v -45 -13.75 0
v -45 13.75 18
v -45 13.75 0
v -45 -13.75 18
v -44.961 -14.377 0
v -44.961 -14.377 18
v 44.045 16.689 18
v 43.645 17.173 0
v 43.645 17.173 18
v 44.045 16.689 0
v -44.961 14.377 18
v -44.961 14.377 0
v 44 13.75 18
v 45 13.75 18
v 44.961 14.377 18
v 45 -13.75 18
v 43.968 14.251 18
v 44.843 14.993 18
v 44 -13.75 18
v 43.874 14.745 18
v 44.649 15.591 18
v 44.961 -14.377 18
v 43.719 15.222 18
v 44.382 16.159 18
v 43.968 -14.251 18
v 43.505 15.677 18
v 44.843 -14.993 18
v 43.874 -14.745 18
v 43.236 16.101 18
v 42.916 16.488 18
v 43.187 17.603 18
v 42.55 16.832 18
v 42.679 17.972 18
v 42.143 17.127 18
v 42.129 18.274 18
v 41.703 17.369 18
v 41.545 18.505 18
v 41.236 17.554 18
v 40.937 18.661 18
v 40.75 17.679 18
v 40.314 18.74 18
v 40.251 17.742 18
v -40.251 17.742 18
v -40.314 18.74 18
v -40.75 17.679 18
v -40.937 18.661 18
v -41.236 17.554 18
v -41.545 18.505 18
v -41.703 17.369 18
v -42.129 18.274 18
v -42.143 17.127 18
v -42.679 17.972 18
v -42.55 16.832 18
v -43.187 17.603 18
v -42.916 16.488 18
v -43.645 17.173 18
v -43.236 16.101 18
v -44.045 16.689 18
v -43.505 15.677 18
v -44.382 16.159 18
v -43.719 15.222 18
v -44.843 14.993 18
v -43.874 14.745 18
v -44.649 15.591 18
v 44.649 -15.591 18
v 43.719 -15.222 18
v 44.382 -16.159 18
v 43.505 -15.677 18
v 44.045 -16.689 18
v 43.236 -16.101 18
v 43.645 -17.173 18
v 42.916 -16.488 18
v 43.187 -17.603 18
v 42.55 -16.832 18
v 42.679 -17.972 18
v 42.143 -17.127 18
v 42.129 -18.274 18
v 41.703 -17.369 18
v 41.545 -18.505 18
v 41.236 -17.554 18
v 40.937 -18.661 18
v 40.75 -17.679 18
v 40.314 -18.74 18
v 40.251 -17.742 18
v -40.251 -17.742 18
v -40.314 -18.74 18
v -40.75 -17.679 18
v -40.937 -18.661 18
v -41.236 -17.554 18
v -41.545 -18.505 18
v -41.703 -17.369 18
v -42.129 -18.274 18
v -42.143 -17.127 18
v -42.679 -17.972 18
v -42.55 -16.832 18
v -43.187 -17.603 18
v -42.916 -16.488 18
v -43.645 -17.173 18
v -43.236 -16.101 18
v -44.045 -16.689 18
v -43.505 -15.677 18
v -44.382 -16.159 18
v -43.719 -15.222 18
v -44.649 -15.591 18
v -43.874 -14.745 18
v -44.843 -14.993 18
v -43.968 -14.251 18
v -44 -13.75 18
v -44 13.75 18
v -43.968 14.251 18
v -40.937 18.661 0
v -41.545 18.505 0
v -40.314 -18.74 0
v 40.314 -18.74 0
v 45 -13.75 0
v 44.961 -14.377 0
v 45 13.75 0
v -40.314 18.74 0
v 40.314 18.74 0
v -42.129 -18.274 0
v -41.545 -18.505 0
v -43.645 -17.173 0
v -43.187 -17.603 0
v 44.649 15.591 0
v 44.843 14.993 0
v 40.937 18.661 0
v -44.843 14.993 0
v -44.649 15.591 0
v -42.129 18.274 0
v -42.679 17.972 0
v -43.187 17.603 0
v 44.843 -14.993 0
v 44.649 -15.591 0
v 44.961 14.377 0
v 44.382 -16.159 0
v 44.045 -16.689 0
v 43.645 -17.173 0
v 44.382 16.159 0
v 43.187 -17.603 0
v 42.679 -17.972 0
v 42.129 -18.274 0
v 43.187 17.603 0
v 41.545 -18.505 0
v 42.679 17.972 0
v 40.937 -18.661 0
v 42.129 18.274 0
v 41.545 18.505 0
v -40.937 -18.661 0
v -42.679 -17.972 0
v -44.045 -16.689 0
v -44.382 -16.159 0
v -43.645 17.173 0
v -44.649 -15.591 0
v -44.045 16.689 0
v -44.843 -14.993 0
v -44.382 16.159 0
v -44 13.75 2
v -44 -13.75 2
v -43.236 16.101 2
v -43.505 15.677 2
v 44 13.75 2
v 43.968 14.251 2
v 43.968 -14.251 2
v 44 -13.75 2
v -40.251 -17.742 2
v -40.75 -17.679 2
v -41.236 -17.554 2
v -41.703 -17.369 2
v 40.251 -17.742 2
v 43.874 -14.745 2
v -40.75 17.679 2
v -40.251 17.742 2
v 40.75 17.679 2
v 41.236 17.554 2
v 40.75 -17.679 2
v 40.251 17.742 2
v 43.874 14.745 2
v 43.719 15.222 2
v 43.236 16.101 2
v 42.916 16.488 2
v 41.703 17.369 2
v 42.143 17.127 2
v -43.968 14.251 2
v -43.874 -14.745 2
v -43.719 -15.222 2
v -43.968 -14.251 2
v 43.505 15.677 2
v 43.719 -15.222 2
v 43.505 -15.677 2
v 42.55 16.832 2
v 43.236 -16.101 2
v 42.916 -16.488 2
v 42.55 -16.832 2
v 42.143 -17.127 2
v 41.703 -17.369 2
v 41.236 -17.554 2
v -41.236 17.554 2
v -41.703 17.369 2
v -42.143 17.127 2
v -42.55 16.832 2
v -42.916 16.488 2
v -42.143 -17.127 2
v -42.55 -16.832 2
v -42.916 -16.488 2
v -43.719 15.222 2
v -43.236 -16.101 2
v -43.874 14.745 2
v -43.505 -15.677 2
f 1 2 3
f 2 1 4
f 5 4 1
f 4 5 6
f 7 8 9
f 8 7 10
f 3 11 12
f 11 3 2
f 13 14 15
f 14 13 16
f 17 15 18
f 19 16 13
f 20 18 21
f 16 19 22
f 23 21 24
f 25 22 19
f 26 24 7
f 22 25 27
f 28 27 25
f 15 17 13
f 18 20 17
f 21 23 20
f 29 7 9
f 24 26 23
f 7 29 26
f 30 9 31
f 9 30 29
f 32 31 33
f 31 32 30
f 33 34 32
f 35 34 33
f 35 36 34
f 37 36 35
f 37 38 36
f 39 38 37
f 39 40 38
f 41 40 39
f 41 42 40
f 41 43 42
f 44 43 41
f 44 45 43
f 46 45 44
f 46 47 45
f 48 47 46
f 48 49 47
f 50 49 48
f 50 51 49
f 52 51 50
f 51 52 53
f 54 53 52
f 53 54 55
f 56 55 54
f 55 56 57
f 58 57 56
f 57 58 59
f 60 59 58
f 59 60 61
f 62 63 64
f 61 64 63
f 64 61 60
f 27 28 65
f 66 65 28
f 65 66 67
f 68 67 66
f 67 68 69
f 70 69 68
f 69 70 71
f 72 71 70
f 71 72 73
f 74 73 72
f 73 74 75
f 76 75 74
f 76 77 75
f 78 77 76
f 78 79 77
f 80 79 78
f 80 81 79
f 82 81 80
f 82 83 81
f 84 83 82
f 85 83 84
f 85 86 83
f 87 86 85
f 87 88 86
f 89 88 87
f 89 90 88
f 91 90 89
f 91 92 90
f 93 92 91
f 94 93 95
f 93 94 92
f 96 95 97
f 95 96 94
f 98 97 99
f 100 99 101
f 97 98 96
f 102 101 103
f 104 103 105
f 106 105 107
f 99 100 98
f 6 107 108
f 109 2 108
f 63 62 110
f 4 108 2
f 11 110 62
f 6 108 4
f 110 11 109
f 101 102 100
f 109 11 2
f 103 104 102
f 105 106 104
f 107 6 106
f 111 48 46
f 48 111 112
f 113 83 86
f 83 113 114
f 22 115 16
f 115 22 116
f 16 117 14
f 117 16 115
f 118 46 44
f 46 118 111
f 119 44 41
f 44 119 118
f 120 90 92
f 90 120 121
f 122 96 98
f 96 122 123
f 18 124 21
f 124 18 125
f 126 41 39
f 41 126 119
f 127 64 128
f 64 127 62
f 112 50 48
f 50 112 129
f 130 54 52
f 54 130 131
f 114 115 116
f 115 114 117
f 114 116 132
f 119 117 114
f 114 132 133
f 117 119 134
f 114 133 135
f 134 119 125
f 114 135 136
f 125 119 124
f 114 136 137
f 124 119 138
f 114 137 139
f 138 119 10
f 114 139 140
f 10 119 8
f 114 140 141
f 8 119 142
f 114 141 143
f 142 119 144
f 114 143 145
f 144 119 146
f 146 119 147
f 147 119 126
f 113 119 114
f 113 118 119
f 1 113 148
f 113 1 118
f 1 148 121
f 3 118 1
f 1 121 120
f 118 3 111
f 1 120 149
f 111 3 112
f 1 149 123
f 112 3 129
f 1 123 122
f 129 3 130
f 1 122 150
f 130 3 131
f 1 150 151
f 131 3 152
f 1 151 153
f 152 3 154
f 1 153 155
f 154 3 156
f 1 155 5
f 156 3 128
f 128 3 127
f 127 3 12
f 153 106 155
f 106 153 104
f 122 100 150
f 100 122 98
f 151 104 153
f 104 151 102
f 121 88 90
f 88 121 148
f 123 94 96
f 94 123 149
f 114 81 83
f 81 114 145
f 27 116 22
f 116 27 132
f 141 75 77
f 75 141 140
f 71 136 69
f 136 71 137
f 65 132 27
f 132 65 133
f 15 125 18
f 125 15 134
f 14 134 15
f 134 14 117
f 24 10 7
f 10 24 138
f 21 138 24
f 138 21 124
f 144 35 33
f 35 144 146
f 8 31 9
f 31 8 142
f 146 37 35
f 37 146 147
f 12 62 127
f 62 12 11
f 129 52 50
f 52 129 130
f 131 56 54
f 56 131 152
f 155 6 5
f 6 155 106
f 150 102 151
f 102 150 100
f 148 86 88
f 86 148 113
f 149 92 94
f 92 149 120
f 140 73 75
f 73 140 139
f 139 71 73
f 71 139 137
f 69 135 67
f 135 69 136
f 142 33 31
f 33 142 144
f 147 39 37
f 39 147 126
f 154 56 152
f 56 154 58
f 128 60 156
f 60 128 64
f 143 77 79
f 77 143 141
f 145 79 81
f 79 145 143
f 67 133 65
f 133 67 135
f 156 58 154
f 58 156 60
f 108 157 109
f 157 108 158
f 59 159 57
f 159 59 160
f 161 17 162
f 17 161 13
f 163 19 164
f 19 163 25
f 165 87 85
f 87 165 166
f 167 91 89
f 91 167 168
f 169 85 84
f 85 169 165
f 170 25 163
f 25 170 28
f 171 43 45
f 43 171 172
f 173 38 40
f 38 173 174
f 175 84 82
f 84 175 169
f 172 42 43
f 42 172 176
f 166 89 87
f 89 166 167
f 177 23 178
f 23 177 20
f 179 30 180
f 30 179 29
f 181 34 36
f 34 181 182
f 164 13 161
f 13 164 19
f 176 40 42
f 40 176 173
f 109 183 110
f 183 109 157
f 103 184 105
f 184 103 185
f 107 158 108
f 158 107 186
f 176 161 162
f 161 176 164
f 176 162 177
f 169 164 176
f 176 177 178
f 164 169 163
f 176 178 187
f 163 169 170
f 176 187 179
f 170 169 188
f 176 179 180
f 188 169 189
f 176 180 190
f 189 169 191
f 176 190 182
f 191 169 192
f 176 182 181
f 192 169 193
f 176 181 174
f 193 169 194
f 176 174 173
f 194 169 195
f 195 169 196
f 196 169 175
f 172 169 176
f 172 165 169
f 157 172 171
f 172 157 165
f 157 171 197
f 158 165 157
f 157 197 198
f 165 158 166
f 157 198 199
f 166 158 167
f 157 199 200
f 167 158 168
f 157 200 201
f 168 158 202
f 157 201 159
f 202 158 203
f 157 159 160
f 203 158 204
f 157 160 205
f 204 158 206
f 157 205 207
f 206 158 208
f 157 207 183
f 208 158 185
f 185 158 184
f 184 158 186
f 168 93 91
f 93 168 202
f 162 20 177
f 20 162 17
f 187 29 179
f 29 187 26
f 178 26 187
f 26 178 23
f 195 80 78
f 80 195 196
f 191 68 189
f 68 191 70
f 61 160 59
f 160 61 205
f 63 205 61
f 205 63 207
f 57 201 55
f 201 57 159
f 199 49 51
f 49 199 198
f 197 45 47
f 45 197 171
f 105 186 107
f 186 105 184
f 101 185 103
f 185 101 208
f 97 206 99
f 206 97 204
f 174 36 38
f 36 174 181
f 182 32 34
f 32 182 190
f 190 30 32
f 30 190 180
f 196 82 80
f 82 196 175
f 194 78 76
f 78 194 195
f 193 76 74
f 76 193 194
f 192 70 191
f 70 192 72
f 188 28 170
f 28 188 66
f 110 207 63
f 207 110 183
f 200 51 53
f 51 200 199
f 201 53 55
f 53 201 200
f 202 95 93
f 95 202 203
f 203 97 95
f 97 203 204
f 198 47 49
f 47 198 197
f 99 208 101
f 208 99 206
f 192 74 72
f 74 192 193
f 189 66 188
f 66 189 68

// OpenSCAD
$fn = 50;


difference() {
	union() {
		hull() {
			translate(v = [-40.0000000000, 13.7500000000, 0]) {
				cylinder(h = 18, r = 5);
			}
			translate(v = [40.0000000000, 13.7500000000, 0]) {
				cylinder(h = 18, r = 5);
			}
			translate(v = [-40.0000000000, -13.7500000000, 0]) {
				cylinder(h = 18, r = 5);
			}
			translate(v = [40.0000000000, -13.7500000000, 0]) {
				cylinder(h = 18, r = 5);
			}
		}
	}
	union() {
		translate(v = [0, 0, 2]) {
			#hull() {
				translate(v = [-40.0000000000, 13.7500000000, 0]) {
					cylinder(h = 16, r = 4);
				}
				translate(v = [40.0000000000, 13.7500000000, 0]) {
					cylinder(h = 16, r = 4);
				}
				translate(v = [-40.0000000000, -13.7500000000, 0]) {
					cylinder(h = 16, r = 4);
				}
				translate(v = [40.0000000000, -13.7500000000, 0]) {
					cylinder(h = 16, r = 4);
				}
			}
		}
	}
}
